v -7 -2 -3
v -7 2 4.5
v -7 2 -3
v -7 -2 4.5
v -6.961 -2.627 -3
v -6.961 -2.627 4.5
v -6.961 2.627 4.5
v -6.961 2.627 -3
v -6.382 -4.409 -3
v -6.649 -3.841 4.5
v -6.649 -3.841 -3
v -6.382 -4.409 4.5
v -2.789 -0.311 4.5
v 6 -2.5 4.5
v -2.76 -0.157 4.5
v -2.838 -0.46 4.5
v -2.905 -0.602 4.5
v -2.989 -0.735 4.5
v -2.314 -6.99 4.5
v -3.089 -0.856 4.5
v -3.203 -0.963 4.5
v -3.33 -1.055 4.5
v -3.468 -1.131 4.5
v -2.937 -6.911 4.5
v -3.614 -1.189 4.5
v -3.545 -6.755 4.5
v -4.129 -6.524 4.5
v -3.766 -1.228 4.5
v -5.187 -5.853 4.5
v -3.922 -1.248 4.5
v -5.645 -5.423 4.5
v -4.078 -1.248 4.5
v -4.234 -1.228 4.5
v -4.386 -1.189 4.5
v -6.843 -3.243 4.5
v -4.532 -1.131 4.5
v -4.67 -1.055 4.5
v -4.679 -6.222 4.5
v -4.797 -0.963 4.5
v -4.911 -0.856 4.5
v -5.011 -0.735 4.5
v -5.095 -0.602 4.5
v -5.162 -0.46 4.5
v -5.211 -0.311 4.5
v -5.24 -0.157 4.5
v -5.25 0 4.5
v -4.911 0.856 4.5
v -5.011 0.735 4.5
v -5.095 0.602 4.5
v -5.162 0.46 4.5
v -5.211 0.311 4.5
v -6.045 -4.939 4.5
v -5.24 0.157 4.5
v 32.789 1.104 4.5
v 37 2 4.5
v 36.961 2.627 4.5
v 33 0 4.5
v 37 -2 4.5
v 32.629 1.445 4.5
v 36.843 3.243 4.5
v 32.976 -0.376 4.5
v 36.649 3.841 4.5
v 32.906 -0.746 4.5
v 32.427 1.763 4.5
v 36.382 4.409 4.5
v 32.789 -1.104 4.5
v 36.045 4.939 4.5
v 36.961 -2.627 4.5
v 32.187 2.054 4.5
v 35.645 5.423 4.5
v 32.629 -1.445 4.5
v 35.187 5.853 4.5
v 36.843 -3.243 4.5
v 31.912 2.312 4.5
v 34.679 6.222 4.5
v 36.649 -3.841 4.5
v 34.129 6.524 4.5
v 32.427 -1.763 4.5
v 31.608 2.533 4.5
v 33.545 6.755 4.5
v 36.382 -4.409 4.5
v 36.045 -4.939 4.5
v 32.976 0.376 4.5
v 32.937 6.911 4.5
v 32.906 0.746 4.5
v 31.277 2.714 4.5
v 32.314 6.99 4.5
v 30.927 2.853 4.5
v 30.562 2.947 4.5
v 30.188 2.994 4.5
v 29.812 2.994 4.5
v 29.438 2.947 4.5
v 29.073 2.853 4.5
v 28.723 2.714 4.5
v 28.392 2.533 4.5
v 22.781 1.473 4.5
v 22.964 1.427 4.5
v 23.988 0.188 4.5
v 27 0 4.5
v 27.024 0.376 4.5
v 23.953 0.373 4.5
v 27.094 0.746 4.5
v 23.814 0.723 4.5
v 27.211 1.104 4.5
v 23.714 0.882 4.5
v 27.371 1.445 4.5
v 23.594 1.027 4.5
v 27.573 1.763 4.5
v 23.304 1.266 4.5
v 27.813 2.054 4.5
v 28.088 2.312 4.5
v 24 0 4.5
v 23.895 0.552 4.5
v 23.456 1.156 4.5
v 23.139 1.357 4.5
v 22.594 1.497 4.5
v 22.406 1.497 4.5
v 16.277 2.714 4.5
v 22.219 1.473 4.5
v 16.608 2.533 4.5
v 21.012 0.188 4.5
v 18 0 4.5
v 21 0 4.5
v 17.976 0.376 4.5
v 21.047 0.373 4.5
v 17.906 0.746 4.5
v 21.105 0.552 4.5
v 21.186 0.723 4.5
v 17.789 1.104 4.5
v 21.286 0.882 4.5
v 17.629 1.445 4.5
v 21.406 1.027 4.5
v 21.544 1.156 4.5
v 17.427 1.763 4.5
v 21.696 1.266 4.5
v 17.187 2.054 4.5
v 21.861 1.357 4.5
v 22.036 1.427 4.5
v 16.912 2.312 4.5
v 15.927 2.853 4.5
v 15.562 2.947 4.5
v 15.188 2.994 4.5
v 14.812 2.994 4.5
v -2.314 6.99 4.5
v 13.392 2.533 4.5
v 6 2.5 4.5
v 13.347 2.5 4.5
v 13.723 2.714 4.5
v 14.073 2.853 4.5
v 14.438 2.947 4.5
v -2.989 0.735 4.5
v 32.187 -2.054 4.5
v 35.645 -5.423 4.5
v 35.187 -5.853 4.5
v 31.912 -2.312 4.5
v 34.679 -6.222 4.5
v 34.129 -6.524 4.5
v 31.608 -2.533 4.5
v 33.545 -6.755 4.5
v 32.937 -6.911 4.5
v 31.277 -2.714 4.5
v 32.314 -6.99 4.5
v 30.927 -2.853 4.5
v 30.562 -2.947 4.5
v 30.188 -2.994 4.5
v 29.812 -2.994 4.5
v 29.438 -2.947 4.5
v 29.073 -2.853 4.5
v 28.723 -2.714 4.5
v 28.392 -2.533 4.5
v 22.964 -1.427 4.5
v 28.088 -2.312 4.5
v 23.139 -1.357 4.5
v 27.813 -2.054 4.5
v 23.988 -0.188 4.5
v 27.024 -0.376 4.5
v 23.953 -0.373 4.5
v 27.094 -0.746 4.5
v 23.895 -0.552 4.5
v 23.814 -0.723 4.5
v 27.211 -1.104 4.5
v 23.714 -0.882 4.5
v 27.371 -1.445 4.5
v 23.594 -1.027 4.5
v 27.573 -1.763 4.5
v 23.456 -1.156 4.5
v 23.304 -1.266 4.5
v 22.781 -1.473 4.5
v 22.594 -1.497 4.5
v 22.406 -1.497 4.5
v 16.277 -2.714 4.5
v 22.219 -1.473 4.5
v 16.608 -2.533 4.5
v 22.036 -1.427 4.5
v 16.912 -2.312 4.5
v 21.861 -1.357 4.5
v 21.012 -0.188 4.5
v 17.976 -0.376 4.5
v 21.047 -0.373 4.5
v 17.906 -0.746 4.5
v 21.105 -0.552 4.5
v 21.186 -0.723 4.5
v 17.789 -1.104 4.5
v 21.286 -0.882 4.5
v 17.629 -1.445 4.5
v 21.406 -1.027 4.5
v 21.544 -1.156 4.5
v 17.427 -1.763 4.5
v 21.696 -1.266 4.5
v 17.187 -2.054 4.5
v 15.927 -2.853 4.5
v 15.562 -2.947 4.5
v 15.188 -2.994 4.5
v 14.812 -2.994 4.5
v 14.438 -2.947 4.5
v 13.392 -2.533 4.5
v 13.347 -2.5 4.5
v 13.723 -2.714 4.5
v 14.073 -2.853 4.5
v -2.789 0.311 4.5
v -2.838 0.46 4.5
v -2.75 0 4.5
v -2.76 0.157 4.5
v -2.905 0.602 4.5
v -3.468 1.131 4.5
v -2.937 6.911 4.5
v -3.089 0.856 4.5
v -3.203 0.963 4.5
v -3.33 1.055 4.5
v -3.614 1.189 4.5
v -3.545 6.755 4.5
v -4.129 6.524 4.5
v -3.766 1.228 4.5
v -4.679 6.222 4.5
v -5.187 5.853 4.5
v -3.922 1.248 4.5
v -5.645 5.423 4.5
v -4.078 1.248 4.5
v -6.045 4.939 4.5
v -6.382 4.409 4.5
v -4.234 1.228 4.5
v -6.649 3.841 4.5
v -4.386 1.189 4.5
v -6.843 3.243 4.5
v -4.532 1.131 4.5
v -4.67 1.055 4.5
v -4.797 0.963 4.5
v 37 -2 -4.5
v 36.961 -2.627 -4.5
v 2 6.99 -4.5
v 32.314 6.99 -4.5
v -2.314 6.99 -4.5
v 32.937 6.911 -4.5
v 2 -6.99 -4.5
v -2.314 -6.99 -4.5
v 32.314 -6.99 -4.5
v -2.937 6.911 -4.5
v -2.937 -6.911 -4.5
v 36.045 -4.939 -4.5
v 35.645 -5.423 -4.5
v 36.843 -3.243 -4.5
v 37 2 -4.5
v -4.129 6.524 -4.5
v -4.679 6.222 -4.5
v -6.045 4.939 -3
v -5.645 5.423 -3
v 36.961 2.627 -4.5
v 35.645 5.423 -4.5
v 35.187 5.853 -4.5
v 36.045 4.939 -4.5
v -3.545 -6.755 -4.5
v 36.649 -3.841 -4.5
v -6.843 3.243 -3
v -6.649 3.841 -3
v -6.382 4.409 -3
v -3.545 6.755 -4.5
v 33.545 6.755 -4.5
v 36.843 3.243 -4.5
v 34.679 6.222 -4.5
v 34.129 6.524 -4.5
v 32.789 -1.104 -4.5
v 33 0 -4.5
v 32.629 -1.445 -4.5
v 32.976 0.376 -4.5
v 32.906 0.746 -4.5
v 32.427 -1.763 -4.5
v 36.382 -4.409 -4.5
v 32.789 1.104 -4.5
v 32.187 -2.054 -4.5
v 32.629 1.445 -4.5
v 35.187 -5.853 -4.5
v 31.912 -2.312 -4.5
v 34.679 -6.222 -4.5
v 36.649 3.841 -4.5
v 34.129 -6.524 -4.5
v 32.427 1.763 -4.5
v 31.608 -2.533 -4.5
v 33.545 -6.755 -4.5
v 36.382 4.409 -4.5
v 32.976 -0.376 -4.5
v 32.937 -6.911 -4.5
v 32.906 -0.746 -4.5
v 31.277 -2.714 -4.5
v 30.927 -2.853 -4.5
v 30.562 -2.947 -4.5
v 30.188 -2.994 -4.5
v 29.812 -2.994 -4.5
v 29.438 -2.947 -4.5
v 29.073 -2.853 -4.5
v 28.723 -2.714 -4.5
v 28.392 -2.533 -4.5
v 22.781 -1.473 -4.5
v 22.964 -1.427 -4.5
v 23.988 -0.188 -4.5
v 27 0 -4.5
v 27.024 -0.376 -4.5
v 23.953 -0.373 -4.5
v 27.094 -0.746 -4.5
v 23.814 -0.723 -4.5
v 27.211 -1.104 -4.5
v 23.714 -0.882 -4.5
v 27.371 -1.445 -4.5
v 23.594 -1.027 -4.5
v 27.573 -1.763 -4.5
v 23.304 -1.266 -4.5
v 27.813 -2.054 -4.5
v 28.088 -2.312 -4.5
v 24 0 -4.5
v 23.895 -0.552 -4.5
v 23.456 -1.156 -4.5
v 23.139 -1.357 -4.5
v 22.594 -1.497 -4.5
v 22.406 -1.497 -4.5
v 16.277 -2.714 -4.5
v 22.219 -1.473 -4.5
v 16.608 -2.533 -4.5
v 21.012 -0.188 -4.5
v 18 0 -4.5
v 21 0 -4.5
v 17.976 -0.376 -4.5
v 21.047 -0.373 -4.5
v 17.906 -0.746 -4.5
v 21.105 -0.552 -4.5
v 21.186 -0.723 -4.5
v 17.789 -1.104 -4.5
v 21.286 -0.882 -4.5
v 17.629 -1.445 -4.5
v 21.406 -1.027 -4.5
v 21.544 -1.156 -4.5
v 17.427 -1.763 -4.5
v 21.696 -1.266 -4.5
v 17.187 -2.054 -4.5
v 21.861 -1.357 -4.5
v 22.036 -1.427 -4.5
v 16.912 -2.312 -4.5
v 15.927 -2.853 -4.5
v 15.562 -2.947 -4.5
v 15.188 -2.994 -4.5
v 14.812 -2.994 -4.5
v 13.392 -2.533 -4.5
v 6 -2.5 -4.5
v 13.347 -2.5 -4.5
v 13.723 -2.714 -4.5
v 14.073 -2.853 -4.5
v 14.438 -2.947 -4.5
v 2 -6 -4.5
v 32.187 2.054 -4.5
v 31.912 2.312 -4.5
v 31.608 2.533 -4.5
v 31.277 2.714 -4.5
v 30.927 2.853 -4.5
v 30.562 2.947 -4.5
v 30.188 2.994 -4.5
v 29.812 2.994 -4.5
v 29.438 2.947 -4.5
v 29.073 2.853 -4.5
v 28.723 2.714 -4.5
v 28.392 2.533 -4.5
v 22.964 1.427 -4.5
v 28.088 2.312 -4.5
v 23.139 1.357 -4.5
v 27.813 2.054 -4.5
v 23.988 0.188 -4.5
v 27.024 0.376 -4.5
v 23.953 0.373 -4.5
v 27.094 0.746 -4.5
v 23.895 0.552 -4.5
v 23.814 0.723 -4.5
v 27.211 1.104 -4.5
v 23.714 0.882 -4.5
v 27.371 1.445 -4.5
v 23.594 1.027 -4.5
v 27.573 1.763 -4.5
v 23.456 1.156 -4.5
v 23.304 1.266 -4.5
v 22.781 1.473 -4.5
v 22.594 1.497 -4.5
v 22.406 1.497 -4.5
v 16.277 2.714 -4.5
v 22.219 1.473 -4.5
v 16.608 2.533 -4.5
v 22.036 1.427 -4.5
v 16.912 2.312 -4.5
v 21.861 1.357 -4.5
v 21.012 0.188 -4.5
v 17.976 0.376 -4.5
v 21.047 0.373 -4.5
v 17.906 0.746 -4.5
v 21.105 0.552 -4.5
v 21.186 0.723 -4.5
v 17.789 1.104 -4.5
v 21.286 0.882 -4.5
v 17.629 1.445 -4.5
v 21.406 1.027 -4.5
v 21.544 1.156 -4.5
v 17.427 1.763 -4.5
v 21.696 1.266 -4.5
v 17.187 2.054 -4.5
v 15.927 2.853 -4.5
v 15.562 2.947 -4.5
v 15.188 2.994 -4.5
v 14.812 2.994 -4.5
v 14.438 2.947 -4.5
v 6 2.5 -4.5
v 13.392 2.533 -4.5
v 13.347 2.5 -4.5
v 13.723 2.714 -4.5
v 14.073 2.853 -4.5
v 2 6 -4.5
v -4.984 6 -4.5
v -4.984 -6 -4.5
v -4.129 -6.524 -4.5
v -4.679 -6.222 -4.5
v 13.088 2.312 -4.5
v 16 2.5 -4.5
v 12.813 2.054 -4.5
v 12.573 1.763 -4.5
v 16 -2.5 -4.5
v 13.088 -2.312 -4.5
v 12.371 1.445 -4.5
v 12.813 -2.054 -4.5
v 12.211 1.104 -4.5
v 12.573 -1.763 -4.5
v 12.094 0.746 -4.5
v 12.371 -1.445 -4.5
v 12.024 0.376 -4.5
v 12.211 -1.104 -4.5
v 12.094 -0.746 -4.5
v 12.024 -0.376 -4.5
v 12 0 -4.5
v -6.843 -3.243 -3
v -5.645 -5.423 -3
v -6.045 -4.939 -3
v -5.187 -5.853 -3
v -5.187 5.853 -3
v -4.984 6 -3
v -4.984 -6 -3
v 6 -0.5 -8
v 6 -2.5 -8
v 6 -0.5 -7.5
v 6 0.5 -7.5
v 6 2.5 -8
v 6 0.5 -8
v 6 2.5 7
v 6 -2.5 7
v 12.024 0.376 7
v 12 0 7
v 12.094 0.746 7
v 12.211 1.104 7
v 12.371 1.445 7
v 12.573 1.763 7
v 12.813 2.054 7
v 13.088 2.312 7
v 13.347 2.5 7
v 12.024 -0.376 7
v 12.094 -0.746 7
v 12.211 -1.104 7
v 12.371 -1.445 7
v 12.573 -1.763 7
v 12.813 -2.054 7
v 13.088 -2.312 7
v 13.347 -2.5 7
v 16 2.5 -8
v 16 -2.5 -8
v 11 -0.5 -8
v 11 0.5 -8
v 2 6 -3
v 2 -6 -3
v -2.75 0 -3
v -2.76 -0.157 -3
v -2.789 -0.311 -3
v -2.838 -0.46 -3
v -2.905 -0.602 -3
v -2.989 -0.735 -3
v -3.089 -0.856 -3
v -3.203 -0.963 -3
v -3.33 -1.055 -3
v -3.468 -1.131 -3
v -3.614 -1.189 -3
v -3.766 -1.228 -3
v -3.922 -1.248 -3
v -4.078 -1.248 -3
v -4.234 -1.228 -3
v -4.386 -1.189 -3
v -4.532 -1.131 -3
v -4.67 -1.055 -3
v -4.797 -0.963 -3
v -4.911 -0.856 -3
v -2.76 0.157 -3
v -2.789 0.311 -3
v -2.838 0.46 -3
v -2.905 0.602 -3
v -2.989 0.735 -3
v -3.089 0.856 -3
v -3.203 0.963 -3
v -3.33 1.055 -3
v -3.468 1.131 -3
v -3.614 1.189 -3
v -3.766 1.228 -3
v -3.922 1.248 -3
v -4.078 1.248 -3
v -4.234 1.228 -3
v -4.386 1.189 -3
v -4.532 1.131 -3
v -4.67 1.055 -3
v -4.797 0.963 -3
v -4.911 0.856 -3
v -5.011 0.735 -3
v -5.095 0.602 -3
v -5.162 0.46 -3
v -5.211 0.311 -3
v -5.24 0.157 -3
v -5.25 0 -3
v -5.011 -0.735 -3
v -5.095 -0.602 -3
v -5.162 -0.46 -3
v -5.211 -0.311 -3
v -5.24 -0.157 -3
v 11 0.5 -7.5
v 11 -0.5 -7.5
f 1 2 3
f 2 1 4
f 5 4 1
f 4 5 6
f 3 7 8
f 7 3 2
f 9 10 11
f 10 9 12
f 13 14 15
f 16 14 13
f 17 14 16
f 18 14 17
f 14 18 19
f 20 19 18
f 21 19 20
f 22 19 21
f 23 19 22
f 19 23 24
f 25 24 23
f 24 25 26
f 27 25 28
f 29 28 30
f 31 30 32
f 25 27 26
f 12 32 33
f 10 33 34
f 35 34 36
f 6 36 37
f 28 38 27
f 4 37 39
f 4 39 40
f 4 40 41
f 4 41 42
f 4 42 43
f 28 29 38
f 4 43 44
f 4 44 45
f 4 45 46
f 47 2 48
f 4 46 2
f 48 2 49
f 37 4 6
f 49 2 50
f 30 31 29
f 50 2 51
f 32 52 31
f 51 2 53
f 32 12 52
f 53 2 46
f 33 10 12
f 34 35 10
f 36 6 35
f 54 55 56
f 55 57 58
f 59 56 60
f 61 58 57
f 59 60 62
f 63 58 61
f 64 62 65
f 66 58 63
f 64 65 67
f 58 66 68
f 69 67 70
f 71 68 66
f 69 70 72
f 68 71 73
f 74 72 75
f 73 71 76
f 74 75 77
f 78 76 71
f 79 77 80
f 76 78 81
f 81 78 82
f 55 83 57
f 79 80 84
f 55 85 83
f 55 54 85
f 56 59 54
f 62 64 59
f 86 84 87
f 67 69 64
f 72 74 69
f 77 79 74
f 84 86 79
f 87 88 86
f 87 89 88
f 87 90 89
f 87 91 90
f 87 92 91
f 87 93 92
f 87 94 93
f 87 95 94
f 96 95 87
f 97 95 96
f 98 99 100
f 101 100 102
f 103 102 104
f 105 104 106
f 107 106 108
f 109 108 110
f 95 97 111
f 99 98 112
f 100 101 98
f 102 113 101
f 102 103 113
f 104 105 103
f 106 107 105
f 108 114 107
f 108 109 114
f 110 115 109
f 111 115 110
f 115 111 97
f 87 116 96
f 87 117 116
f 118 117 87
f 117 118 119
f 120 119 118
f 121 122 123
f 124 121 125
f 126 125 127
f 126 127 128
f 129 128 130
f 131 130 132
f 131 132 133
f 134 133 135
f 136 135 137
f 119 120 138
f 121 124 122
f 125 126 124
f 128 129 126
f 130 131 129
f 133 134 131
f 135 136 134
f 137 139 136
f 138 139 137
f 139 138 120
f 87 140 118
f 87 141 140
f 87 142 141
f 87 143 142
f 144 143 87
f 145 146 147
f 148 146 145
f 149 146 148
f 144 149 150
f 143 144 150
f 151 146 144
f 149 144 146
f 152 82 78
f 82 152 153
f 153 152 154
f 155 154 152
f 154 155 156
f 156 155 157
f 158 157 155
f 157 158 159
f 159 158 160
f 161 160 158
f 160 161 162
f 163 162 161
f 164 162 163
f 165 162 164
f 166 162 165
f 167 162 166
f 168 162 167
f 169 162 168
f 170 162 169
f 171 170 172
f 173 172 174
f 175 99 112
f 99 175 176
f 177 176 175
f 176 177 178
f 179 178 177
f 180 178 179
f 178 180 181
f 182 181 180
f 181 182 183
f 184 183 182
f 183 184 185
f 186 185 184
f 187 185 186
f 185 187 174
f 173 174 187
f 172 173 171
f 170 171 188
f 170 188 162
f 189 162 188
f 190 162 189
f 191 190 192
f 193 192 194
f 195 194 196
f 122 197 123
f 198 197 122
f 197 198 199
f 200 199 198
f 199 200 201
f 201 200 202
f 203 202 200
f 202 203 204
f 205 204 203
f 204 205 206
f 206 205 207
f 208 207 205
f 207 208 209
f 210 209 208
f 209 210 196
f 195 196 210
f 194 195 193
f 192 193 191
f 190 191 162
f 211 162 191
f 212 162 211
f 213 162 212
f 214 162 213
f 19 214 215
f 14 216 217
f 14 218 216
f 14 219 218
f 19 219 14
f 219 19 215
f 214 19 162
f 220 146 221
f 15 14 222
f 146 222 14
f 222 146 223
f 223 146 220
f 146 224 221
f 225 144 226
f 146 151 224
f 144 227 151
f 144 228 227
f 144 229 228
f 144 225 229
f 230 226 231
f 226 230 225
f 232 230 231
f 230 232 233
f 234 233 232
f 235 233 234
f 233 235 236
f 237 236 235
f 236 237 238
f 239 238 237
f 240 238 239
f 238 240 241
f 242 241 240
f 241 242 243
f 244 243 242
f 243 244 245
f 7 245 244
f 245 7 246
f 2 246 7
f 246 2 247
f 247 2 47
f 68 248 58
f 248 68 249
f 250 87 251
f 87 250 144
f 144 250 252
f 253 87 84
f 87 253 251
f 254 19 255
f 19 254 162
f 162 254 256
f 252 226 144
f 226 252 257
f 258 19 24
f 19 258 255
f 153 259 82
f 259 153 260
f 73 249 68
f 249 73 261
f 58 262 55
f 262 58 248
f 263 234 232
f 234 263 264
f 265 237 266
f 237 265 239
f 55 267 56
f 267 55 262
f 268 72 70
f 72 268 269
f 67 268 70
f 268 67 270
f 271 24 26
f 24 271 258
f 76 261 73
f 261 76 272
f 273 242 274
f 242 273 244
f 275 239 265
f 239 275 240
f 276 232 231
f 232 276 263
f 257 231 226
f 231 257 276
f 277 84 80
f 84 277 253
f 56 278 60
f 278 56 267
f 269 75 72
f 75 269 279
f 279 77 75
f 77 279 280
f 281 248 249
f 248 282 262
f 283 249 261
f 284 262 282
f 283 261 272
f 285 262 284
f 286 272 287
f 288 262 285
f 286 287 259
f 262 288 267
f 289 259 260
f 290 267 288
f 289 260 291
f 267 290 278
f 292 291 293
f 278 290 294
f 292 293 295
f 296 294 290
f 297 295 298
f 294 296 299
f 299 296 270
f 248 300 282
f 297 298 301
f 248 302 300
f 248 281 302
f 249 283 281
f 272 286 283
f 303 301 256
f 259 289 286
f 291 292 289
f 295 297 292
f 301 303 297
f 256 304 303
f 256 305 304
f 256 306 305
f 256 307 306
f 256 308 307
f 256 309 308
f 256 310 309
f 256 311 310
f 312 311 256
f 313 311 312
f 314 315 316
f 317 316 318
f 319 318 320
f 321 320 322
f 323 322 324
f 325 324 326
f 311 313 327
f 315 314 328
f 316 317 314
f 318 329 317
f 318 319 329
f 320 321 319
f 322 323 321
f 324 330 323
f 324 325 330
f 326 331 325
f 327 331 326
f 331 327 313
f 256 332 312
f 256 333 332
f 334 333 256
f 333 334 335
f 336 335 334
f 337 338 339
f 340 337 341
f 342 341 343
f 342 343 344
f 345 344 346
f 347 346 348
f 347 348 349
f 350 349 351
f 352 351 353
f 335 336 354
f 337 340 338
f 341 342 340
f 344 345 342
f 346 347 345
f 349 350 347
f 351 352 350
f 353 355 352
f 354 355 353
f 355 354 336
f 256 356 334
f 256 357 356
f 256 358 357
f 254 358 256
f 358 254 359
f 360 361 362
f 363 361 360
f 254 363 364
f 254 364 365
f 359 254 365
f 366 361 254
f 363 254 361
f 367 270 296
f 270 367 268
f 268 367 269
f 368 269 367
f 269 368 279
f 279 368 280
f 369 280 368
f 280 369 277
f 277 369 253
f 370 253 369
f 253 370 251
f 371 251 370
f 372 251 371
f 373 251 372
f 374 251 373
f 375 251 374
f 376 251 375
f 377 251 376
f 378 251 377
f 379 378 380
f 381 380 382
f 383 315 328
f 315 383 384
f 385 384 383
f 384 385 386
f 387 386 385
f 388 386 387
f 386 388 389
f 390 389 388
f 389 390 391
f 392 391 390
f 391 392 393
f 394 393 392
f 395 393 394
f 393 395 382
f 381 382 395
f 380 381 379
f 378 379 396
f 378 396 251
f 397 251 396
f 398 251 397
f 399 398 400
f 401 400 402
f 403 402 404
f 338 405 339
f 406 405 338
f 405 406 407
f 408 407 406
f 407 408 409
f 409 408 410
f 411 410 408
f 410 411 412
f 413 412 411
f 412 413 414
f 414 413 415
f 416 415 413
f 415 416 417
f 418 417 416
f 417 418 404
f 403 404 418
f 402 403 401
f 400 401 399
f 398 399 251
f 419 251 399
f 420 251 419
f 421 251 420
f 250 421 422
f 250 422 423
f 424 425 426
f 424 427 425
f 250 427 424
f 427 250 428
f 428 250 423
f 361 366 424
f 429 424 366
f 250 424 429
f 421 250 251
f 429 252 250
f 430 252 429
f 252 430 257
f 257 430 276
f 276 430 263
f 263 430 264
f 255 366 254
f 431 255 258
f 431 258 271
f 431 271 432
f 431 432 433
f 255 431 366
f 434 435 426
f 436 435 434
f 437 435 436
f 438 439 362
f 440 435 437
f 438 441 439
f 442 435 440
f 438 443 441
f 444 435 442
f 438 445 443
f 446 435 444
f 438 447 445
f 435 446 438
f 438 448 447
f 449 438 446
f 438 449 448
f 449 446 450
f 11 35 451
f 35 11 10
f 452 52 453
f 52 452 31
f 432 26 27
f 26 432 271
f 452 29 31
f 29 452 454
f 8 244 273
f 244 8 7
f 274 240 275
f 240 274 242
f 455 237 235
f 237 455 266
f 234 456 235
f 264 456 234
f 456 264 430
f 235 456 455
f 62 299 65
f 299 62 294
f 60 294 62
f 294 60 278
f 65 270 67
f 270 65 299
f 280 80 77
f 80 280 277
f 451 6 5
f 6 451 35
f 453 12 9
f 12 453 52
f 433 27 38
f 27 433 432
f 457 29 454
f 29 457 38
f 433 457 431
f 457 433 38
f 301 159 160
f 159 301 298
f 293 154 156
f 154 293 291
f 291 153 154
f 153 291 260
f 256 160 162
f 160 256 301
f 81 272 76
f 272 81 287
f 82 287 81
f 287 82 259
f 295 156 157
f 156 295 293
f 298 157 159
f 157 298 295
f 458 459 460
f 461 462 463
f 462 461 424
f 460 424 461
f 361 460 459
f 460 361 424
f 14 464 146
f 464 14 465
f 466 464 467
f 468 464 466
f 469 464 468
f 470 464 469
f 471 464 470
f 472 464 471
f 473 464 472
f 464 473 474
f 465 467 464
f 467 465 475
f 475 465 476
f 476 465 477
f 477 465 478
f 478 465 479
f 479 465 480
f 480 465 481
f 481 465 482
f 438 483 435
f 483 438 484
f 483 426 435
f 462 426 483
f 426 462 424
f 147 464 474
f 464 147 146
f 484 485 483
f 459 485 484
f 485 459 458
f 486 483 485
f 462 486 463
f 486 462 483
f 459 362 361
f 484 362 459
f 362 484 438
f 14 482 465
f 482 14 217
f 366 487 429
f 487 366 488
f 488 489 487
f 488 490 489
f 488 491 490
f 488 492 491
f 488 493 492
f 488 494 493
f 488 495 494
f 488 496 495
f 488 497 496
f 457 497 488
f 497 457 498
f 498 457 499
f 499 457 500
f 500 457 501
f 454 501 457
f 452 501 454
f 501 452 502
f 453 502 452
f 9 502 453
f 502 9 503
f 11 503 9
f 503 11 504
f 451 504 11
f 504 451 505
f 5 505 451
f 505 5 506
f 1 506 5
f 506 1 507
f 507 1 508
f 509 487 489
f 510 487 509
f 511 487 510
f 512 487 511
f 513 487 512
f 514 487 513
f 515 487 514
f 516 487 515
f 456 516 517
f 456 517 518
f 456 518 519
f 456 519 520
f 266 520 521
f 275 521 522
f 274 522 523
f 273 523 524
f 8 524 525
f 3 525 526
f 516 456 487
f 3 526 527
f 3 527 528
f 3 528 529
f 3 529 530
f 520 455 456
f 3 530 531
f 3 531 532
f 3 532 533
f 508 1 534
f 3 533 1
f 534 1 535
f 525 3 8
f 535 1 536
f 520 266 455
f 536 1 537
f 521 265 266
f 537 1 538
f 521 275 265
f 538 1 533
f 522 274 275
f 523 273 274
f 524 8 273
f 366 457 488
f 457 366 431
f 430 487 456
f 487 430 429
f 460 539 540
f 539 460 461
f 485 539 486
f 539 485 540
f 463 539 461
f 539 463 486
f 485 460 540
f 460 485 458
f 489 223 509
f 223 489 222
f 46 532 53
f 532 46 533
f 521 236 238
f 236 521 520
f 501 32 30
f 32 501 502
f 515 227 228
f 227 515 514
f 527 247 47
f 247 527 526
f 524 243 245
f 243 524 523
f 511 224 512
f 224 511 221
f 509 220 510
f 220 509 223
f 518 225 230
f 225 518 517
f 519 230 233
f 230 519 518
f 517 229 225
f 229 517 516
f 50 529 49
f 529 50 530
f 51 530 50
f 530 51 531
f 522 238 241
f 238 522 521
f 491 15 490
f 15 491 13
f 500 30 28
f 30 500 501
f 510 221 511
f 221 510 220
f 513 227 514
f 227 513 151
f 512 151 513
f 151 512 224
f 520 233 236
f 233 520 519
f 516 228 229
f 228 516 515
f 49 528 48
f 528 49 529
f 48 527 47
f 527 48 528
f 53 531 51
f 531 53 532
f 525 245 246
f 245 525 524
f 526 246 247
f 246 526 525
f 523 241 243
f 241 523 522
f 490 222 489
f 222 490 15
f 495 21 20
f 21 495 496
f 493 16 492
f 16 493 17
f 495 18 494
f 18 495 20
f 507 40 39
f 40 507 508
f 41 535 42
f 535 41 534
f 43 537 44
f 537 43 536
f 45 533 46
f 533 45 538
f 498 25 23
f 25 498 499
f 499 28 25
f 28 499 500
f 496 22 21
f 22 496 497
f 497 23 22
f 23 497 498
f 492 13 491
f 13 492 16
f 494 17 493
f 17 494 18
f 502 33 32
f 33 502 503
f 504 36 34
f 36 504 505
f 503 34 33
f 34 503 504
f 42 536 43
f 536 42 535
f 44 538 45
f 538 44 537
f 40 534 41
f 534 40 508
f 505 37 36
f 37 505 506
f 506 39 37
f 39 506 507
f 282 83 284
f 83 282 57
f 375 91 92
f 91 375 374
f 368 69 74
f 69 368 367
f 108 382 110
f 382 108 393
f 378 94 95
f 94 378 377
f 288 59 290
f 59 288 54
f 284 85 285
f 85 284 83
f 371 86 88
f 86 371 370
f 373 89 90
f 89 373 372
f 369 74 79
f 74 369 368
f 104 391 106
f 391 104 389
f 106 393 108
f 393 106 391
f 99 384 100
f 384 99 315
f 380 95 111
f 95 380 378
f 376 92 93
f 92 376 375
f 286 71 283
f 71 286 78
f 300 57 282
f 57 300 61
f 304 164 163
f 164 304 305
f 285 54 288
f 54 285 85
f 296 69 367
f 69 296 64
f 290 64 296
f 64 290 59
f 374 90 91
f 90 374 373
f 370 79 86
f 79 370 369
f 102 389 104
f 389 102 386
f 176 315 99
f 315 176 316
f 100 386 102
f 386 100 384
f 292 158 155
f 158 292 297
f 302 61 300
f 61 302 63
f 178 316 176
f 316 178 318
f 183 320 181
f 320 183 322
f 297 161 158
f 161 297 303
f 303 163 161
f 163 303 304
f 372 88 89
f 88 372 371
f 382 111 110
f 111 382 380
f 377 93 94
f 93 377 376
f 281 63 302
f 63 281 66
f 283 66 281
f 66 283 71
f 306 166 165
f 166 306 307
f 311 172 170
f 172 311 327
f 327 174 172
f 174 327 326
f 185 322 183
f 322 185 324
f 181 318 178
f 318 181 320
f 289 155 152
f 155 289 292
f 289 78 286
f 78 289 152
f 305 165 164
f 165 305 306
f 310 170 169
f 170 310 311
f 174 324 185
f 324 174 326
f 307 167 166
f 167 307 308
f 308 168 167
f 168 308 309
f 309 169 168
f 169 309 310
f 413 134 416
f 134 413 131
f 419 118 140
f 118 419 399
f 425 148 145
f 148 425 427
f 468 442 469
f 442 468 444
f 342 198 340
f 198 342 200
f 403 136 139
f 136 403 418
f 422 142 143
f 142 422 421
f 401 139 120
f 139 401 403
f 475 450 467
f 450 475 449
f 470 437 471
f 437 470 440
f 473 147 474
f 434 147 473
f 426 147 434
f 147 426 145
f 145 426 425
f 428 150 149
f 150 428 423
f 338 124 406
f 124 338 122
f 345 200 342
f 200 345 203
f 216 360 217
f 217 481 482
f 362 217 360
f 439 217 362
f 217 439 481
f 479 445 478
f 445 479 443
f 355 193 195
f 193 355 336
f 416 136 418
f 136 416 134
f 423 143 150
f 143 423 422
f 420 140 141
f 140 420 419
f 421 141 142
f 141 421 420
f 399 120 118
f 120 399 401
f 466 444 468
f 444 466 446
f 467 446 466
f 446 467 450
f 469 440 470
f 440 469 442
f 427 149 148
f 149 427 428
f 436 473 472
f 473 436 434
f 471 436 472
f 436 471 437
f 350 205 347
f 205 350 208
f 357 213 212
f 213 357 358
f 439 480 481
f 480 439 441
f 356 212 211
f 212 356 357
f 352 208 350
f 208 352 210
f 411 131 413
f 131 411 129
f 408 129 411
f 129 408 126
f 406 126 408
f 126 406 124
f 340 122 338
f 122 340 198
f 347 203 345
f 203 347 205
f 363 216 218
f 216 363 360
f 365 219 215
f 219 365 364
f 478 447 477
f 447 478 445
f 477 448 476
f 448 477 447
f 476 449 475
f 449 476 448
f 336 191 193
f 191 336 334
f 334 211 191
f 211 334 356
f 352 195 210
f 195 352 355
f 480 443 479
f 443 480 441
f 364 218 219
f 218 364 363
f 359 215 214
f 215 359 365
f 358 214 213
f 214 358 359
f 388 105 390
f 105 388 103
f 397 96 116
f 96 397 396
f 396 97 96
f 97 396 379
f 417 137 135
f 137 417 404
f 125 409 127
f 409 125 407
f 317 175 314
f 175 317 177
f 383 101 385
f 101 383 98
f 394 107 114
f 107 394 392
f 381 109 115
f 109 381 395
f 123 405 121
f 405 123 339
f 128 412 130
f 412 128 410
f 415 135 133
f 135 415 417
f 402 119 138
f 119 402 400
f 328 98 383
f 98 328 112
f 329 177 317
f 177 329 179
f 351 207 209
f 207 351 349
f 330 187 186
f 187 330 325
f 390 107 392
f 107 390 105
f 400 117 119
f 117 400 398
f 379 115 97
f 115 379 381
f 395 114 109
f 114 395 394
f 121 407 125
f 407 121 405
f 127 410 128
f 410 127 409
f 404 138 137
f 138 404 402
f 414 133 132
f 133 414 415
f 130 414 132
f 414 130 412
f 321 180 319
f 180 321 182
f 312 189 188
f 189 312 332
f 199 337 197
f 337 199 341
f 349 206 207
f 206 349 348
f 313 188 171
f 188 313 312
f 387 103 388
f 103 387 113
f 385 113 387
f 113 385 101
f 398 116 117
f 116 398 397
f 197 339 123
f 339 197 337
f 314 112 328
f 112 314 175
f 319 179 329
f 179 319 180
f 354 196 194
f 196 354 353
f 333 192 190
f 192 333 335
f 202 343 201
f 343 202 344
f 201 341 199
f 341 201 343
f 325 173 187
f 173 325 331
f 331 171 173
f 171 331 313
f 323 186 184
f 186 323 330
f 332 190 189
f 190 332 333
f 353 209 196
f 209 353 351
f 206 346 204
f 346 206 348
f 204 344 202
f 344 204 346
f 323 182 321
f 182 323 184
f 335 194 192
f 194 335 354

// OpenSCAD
$fn = 50;


difference() {
	union() {
		translate(v = [15.0000000000, 0, -4.5000000000]) {
			hull() {
				translate(v = [-17.0000000000, 2.0000000000, 0]) {
					cylinder(h = 9, r = 5);
				}
				translate(v = [17.0000000000, 2.0000000000, 0]) {
					cylinder(h = 9, r = 5);
				}
				translate(v = [-17.0000000000, -2.0000000000, 0]) {
					cylinder(h = 9, r = 5);
				}
				translate(v = [17.0000000000, -2.0000000000, 0]) {
					cylinder(h = 9, r = 5);
				}
			}
		}
		translate(v = [6.0000000000, -2.5000000000, -8]) {
			cube(size = [10, 5, 15]);
		}
	}
	union() {
		translate(v = [-10, 0, -12.5000000000]) {
			rotate(a = [0, 90, 0]) {
				difference() {
					union() {
						translate(v = [-8.0000000000, -8.0000000000, 0]) {
							cube(size = [16, 16, 12]);
						}
						translate(v = [5.2500000000, 6.7500000000, -4]) {
							cube(size = [3, 1.5000000000, 4]);
						}
						translate(v = [-8.2500000000, 6.7500000000, -4]) {
							cube(size = [3, 1.5000000000, 4]);
						}
						translate(v = [5.2500000000, -8.2500000000, -4]) {
							cube(size = [3, 1.5000000000, 4]);
						}
						translate(v = [-8.2500000000, -8.2500000000, -4]) {
							cube(size = [3, 1.5000000000, 4]);
						}
						translate(v = [4.5000000000, -9.5000000000, 0]) {
							cube(size = [2, 19, 3.5000000000]);
						}
						translate(v = [-6.5000000000, -9.5000000000, 0]) {
							cube(size = [2, 19, 3.5000000000]);
						}
						translate(v = [8.0000000000, -6.0000000000, -4]) {
							cube(size = [4, 12, 16]);
						}
						translate(v = [-9.5000000000, -6.0000000000, -4]) {
							cube(size = [1.5000000000, 12, 16]);
						}
						translate(v = [-5.0000000000, -0.5000000000, 12]) {
							cube(size = [10, 1, 9]);
						}
					}
					union();
				}
			}
		}
		translate(v = [-4, 0, -100.0000000000]) {
			cylinder(h = 200, r = 1.2500000000);
		}
		translate(v = [30.0000000000, 0.0000000000, -4.5000000000]) {
			cylinder(h = 100, r = 3.0000000000);
		}
		translate(v = [15.0000000000, 0.0000000000, -4.5000000000]) {
			cylinder(h = 100, r = 3.0000000000);
		}
		translate(v = [22.5000000000, 0.0000000000, -4.5000000000]) {
			cylinder(h = 100, r = 1.5000000000);
		}
	}
}
